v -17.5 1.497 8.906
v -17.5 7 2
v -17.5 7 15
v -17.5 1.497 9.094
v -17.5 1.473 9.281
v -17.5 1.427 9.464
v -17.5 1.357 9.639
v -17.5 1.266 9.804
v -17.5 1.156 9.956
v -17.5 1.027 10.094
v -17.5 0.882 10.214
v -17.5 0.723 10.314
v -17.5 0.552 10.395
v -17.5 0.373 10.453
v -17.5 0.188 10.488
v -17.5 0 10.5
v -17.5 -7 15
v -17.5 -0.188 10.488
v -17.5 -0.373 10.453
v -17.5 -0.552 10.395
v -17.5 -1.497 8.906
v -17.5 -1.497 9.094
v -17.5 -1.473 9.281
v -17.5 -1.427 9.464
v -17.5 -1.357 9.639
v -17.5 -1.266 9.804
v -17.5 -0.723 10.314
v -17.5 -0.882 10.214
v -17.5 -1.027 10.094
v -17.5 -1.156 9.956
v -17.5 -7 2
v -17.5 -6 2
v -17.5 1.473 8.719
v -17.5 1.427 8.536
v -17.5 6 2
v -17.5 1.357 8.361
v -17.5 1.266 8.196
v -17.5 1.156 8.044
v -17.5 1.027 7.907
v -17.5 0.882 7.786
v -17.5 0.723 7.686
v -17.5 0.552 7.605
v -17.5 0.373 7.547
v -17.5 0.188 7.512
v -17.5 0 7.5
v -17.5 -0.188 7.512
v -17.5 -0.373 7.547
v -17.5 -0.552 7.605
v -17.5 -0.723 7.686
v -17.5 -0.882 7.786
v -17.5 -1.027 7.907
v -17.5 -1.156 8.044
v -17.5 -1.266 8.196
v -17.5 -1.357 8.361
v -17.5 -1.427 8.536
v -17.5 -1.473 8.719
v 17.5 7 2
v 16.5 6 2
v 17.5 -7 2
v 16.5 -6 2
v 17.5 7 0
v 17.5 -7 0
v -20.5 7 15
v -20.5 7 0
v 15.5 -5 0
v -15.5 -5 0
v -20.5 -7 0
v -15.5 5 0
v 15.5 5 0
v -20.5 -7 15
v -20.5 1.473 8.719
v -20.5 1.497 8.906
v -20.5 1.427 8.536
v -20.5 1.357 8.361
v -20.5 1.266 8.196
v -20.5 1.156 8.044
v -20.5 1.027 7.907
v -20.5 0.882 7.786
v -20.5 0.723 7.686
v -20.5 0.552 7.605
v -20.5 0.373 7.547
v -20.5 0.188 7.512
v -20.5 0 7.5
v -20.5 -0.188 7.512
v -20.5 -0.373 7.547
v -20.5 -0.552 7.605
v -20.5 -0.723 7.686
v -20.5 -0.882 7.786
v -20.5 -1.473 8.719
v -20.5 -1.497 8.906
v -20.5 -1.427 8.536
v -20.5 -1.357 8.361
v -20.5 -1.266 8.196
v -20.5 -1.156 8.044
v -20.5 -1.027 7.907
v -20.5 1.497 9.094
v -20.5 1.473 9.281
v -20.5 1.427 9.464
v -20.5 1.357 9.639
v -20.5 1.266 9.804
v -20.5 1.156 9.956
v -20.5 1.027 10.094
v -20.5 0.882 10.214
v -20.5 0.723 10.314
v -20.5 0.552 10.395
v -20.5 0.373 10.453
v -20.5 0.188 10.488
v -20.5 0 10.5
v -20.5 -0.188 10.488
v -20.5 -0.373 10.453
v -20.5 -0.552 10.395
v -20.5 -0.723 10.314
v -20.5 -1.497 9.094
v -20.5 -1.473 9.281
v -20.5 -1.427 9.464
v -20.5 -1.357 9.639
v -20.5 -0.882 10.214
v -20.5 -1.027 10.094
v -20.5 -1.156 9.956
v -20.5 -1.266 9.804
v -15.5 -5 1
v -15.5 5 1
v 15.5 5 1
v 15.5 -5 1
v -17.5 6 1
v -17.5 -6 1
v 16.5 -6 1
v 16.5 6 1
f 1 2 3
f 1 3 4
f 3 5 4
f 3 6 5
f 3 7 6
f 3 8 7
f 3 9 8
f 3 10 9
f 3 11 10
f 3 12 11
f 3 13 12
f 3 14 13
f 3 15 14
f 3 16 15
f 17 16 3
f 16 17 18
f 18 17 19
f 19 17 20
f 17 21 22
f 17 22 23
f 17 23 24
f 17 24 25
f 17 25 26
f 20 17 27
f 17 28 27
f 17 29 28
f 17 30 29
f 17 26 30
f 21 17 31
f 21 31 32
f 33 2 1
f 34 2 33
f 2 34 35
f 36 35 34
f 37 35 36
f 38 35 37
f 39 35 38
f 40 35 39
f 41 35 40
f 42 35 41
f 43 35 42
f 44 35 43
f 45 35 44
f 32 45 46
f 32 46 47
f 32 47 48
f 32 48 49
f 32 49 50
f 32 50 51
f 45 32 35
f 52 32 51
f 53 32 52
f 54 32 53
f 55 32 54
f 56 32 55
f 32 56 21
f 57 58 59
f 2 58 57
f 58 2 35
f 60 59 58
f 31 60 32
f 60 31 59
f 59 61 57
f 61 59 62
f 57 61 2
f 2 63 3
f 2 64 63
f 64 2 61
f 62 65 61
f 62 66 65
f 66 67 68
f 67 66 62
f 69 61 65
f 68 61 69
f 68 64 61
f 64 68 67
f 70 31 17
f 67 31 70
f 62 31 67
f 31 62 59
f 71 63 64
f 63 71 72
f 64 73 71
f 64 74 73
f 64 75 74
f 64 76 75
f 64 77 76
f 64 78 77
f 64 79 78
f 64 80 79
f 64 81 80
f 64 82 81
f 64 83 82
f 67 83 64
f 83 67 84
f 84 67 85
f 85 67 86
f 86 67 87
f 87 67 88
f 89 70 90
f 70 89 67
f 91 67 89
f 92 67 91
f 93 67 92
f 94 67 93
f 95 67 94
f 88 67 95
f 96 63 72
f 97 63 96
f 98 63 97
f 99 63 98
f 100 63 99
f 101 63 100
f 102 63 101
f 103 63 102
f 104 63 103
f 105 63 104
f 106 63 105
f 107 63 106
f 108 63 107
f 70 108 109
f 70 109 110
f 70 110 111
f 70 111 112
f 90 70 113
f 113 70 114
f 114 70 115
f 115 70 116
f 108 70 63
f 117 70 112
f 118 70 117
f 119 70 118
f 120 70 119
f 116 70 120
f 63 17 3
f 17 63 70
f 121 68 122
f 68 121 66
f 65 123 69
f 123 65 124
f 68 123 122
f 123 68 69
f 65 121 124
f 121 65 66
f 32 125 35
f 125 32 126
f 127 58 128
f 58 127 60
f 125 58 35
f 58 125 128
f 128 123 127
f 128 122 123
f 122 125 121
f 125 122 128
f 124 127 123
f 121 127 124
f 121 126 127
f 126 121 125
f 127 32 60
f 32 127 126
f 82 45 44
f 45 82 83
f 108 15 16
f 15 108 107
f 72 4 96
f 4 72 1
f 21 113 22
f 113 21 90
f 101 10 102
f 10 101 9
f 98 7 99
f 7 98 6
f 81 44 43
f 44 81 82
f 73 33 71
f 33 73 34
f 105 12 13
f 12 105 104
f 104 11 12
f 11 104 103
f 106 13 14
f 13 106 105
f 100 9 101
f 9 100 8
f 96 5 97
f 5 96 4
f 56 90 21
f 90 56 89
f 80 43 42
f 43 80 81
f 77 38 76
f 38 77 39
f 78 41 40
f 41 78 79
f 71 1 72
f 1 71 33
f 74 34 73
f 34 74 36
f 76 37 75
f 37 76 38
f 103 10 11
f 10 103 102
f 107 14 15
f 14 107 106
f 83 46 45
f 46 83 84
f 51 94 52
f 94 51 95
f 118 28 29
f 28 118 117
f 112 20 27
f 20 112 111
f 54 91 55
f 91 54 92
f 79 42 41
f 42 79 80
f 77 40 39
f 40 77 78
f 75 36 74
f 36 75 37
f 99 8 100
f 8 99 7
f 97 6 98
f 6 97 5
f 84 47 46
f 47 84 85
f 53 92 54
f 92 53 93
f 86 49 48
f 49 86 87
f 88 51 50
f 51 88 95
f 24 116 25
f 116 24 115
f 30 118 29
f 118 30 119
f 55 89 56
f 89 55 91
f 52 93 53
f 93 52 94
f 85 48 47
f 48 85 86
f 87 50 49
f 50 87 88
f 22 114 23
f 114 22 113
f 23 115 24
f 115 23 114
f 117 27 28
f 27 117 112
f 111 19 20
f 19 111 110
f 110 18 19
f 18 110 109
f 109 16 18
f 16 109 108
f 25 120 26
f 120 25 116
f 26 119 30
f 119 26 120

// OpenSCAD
$fn = 50;


difference() {
	union() {
		translate(v = [-17.5000000000, -7.0000000000, 0]) {
			rotate(a = [0, 0, 0]) {
				cube(size = [35, 14, 2]);
			}
		}
		translate(v = [-20.5000000000, -7.0000000000, 0]) {
			rotate(a = [0, 0, 0]) {
				cube(size = [3, 14, 15]);
			}
		}
	}
	union() {
		translate(v = [-15.5000000000, -5.0000000000, 0]) {
			rotate(a = [0, 0, 0]) {
				cube(size = [31, 10, 2]);
			}
		}
		translate(v = [-17.5000000000, -6.0000000000, 1]) {
			rotate(a = [0, 0, 0]) {
				cube(size = [34, 12, 1]);
			}
		}
		#translate(v = [-27.5000000000, 0, 9]) {
			rotate(a = [0, 90, 0]) {
				cylinder(h = 20, r = 1.5000000000);
			}
		}
	}
}
